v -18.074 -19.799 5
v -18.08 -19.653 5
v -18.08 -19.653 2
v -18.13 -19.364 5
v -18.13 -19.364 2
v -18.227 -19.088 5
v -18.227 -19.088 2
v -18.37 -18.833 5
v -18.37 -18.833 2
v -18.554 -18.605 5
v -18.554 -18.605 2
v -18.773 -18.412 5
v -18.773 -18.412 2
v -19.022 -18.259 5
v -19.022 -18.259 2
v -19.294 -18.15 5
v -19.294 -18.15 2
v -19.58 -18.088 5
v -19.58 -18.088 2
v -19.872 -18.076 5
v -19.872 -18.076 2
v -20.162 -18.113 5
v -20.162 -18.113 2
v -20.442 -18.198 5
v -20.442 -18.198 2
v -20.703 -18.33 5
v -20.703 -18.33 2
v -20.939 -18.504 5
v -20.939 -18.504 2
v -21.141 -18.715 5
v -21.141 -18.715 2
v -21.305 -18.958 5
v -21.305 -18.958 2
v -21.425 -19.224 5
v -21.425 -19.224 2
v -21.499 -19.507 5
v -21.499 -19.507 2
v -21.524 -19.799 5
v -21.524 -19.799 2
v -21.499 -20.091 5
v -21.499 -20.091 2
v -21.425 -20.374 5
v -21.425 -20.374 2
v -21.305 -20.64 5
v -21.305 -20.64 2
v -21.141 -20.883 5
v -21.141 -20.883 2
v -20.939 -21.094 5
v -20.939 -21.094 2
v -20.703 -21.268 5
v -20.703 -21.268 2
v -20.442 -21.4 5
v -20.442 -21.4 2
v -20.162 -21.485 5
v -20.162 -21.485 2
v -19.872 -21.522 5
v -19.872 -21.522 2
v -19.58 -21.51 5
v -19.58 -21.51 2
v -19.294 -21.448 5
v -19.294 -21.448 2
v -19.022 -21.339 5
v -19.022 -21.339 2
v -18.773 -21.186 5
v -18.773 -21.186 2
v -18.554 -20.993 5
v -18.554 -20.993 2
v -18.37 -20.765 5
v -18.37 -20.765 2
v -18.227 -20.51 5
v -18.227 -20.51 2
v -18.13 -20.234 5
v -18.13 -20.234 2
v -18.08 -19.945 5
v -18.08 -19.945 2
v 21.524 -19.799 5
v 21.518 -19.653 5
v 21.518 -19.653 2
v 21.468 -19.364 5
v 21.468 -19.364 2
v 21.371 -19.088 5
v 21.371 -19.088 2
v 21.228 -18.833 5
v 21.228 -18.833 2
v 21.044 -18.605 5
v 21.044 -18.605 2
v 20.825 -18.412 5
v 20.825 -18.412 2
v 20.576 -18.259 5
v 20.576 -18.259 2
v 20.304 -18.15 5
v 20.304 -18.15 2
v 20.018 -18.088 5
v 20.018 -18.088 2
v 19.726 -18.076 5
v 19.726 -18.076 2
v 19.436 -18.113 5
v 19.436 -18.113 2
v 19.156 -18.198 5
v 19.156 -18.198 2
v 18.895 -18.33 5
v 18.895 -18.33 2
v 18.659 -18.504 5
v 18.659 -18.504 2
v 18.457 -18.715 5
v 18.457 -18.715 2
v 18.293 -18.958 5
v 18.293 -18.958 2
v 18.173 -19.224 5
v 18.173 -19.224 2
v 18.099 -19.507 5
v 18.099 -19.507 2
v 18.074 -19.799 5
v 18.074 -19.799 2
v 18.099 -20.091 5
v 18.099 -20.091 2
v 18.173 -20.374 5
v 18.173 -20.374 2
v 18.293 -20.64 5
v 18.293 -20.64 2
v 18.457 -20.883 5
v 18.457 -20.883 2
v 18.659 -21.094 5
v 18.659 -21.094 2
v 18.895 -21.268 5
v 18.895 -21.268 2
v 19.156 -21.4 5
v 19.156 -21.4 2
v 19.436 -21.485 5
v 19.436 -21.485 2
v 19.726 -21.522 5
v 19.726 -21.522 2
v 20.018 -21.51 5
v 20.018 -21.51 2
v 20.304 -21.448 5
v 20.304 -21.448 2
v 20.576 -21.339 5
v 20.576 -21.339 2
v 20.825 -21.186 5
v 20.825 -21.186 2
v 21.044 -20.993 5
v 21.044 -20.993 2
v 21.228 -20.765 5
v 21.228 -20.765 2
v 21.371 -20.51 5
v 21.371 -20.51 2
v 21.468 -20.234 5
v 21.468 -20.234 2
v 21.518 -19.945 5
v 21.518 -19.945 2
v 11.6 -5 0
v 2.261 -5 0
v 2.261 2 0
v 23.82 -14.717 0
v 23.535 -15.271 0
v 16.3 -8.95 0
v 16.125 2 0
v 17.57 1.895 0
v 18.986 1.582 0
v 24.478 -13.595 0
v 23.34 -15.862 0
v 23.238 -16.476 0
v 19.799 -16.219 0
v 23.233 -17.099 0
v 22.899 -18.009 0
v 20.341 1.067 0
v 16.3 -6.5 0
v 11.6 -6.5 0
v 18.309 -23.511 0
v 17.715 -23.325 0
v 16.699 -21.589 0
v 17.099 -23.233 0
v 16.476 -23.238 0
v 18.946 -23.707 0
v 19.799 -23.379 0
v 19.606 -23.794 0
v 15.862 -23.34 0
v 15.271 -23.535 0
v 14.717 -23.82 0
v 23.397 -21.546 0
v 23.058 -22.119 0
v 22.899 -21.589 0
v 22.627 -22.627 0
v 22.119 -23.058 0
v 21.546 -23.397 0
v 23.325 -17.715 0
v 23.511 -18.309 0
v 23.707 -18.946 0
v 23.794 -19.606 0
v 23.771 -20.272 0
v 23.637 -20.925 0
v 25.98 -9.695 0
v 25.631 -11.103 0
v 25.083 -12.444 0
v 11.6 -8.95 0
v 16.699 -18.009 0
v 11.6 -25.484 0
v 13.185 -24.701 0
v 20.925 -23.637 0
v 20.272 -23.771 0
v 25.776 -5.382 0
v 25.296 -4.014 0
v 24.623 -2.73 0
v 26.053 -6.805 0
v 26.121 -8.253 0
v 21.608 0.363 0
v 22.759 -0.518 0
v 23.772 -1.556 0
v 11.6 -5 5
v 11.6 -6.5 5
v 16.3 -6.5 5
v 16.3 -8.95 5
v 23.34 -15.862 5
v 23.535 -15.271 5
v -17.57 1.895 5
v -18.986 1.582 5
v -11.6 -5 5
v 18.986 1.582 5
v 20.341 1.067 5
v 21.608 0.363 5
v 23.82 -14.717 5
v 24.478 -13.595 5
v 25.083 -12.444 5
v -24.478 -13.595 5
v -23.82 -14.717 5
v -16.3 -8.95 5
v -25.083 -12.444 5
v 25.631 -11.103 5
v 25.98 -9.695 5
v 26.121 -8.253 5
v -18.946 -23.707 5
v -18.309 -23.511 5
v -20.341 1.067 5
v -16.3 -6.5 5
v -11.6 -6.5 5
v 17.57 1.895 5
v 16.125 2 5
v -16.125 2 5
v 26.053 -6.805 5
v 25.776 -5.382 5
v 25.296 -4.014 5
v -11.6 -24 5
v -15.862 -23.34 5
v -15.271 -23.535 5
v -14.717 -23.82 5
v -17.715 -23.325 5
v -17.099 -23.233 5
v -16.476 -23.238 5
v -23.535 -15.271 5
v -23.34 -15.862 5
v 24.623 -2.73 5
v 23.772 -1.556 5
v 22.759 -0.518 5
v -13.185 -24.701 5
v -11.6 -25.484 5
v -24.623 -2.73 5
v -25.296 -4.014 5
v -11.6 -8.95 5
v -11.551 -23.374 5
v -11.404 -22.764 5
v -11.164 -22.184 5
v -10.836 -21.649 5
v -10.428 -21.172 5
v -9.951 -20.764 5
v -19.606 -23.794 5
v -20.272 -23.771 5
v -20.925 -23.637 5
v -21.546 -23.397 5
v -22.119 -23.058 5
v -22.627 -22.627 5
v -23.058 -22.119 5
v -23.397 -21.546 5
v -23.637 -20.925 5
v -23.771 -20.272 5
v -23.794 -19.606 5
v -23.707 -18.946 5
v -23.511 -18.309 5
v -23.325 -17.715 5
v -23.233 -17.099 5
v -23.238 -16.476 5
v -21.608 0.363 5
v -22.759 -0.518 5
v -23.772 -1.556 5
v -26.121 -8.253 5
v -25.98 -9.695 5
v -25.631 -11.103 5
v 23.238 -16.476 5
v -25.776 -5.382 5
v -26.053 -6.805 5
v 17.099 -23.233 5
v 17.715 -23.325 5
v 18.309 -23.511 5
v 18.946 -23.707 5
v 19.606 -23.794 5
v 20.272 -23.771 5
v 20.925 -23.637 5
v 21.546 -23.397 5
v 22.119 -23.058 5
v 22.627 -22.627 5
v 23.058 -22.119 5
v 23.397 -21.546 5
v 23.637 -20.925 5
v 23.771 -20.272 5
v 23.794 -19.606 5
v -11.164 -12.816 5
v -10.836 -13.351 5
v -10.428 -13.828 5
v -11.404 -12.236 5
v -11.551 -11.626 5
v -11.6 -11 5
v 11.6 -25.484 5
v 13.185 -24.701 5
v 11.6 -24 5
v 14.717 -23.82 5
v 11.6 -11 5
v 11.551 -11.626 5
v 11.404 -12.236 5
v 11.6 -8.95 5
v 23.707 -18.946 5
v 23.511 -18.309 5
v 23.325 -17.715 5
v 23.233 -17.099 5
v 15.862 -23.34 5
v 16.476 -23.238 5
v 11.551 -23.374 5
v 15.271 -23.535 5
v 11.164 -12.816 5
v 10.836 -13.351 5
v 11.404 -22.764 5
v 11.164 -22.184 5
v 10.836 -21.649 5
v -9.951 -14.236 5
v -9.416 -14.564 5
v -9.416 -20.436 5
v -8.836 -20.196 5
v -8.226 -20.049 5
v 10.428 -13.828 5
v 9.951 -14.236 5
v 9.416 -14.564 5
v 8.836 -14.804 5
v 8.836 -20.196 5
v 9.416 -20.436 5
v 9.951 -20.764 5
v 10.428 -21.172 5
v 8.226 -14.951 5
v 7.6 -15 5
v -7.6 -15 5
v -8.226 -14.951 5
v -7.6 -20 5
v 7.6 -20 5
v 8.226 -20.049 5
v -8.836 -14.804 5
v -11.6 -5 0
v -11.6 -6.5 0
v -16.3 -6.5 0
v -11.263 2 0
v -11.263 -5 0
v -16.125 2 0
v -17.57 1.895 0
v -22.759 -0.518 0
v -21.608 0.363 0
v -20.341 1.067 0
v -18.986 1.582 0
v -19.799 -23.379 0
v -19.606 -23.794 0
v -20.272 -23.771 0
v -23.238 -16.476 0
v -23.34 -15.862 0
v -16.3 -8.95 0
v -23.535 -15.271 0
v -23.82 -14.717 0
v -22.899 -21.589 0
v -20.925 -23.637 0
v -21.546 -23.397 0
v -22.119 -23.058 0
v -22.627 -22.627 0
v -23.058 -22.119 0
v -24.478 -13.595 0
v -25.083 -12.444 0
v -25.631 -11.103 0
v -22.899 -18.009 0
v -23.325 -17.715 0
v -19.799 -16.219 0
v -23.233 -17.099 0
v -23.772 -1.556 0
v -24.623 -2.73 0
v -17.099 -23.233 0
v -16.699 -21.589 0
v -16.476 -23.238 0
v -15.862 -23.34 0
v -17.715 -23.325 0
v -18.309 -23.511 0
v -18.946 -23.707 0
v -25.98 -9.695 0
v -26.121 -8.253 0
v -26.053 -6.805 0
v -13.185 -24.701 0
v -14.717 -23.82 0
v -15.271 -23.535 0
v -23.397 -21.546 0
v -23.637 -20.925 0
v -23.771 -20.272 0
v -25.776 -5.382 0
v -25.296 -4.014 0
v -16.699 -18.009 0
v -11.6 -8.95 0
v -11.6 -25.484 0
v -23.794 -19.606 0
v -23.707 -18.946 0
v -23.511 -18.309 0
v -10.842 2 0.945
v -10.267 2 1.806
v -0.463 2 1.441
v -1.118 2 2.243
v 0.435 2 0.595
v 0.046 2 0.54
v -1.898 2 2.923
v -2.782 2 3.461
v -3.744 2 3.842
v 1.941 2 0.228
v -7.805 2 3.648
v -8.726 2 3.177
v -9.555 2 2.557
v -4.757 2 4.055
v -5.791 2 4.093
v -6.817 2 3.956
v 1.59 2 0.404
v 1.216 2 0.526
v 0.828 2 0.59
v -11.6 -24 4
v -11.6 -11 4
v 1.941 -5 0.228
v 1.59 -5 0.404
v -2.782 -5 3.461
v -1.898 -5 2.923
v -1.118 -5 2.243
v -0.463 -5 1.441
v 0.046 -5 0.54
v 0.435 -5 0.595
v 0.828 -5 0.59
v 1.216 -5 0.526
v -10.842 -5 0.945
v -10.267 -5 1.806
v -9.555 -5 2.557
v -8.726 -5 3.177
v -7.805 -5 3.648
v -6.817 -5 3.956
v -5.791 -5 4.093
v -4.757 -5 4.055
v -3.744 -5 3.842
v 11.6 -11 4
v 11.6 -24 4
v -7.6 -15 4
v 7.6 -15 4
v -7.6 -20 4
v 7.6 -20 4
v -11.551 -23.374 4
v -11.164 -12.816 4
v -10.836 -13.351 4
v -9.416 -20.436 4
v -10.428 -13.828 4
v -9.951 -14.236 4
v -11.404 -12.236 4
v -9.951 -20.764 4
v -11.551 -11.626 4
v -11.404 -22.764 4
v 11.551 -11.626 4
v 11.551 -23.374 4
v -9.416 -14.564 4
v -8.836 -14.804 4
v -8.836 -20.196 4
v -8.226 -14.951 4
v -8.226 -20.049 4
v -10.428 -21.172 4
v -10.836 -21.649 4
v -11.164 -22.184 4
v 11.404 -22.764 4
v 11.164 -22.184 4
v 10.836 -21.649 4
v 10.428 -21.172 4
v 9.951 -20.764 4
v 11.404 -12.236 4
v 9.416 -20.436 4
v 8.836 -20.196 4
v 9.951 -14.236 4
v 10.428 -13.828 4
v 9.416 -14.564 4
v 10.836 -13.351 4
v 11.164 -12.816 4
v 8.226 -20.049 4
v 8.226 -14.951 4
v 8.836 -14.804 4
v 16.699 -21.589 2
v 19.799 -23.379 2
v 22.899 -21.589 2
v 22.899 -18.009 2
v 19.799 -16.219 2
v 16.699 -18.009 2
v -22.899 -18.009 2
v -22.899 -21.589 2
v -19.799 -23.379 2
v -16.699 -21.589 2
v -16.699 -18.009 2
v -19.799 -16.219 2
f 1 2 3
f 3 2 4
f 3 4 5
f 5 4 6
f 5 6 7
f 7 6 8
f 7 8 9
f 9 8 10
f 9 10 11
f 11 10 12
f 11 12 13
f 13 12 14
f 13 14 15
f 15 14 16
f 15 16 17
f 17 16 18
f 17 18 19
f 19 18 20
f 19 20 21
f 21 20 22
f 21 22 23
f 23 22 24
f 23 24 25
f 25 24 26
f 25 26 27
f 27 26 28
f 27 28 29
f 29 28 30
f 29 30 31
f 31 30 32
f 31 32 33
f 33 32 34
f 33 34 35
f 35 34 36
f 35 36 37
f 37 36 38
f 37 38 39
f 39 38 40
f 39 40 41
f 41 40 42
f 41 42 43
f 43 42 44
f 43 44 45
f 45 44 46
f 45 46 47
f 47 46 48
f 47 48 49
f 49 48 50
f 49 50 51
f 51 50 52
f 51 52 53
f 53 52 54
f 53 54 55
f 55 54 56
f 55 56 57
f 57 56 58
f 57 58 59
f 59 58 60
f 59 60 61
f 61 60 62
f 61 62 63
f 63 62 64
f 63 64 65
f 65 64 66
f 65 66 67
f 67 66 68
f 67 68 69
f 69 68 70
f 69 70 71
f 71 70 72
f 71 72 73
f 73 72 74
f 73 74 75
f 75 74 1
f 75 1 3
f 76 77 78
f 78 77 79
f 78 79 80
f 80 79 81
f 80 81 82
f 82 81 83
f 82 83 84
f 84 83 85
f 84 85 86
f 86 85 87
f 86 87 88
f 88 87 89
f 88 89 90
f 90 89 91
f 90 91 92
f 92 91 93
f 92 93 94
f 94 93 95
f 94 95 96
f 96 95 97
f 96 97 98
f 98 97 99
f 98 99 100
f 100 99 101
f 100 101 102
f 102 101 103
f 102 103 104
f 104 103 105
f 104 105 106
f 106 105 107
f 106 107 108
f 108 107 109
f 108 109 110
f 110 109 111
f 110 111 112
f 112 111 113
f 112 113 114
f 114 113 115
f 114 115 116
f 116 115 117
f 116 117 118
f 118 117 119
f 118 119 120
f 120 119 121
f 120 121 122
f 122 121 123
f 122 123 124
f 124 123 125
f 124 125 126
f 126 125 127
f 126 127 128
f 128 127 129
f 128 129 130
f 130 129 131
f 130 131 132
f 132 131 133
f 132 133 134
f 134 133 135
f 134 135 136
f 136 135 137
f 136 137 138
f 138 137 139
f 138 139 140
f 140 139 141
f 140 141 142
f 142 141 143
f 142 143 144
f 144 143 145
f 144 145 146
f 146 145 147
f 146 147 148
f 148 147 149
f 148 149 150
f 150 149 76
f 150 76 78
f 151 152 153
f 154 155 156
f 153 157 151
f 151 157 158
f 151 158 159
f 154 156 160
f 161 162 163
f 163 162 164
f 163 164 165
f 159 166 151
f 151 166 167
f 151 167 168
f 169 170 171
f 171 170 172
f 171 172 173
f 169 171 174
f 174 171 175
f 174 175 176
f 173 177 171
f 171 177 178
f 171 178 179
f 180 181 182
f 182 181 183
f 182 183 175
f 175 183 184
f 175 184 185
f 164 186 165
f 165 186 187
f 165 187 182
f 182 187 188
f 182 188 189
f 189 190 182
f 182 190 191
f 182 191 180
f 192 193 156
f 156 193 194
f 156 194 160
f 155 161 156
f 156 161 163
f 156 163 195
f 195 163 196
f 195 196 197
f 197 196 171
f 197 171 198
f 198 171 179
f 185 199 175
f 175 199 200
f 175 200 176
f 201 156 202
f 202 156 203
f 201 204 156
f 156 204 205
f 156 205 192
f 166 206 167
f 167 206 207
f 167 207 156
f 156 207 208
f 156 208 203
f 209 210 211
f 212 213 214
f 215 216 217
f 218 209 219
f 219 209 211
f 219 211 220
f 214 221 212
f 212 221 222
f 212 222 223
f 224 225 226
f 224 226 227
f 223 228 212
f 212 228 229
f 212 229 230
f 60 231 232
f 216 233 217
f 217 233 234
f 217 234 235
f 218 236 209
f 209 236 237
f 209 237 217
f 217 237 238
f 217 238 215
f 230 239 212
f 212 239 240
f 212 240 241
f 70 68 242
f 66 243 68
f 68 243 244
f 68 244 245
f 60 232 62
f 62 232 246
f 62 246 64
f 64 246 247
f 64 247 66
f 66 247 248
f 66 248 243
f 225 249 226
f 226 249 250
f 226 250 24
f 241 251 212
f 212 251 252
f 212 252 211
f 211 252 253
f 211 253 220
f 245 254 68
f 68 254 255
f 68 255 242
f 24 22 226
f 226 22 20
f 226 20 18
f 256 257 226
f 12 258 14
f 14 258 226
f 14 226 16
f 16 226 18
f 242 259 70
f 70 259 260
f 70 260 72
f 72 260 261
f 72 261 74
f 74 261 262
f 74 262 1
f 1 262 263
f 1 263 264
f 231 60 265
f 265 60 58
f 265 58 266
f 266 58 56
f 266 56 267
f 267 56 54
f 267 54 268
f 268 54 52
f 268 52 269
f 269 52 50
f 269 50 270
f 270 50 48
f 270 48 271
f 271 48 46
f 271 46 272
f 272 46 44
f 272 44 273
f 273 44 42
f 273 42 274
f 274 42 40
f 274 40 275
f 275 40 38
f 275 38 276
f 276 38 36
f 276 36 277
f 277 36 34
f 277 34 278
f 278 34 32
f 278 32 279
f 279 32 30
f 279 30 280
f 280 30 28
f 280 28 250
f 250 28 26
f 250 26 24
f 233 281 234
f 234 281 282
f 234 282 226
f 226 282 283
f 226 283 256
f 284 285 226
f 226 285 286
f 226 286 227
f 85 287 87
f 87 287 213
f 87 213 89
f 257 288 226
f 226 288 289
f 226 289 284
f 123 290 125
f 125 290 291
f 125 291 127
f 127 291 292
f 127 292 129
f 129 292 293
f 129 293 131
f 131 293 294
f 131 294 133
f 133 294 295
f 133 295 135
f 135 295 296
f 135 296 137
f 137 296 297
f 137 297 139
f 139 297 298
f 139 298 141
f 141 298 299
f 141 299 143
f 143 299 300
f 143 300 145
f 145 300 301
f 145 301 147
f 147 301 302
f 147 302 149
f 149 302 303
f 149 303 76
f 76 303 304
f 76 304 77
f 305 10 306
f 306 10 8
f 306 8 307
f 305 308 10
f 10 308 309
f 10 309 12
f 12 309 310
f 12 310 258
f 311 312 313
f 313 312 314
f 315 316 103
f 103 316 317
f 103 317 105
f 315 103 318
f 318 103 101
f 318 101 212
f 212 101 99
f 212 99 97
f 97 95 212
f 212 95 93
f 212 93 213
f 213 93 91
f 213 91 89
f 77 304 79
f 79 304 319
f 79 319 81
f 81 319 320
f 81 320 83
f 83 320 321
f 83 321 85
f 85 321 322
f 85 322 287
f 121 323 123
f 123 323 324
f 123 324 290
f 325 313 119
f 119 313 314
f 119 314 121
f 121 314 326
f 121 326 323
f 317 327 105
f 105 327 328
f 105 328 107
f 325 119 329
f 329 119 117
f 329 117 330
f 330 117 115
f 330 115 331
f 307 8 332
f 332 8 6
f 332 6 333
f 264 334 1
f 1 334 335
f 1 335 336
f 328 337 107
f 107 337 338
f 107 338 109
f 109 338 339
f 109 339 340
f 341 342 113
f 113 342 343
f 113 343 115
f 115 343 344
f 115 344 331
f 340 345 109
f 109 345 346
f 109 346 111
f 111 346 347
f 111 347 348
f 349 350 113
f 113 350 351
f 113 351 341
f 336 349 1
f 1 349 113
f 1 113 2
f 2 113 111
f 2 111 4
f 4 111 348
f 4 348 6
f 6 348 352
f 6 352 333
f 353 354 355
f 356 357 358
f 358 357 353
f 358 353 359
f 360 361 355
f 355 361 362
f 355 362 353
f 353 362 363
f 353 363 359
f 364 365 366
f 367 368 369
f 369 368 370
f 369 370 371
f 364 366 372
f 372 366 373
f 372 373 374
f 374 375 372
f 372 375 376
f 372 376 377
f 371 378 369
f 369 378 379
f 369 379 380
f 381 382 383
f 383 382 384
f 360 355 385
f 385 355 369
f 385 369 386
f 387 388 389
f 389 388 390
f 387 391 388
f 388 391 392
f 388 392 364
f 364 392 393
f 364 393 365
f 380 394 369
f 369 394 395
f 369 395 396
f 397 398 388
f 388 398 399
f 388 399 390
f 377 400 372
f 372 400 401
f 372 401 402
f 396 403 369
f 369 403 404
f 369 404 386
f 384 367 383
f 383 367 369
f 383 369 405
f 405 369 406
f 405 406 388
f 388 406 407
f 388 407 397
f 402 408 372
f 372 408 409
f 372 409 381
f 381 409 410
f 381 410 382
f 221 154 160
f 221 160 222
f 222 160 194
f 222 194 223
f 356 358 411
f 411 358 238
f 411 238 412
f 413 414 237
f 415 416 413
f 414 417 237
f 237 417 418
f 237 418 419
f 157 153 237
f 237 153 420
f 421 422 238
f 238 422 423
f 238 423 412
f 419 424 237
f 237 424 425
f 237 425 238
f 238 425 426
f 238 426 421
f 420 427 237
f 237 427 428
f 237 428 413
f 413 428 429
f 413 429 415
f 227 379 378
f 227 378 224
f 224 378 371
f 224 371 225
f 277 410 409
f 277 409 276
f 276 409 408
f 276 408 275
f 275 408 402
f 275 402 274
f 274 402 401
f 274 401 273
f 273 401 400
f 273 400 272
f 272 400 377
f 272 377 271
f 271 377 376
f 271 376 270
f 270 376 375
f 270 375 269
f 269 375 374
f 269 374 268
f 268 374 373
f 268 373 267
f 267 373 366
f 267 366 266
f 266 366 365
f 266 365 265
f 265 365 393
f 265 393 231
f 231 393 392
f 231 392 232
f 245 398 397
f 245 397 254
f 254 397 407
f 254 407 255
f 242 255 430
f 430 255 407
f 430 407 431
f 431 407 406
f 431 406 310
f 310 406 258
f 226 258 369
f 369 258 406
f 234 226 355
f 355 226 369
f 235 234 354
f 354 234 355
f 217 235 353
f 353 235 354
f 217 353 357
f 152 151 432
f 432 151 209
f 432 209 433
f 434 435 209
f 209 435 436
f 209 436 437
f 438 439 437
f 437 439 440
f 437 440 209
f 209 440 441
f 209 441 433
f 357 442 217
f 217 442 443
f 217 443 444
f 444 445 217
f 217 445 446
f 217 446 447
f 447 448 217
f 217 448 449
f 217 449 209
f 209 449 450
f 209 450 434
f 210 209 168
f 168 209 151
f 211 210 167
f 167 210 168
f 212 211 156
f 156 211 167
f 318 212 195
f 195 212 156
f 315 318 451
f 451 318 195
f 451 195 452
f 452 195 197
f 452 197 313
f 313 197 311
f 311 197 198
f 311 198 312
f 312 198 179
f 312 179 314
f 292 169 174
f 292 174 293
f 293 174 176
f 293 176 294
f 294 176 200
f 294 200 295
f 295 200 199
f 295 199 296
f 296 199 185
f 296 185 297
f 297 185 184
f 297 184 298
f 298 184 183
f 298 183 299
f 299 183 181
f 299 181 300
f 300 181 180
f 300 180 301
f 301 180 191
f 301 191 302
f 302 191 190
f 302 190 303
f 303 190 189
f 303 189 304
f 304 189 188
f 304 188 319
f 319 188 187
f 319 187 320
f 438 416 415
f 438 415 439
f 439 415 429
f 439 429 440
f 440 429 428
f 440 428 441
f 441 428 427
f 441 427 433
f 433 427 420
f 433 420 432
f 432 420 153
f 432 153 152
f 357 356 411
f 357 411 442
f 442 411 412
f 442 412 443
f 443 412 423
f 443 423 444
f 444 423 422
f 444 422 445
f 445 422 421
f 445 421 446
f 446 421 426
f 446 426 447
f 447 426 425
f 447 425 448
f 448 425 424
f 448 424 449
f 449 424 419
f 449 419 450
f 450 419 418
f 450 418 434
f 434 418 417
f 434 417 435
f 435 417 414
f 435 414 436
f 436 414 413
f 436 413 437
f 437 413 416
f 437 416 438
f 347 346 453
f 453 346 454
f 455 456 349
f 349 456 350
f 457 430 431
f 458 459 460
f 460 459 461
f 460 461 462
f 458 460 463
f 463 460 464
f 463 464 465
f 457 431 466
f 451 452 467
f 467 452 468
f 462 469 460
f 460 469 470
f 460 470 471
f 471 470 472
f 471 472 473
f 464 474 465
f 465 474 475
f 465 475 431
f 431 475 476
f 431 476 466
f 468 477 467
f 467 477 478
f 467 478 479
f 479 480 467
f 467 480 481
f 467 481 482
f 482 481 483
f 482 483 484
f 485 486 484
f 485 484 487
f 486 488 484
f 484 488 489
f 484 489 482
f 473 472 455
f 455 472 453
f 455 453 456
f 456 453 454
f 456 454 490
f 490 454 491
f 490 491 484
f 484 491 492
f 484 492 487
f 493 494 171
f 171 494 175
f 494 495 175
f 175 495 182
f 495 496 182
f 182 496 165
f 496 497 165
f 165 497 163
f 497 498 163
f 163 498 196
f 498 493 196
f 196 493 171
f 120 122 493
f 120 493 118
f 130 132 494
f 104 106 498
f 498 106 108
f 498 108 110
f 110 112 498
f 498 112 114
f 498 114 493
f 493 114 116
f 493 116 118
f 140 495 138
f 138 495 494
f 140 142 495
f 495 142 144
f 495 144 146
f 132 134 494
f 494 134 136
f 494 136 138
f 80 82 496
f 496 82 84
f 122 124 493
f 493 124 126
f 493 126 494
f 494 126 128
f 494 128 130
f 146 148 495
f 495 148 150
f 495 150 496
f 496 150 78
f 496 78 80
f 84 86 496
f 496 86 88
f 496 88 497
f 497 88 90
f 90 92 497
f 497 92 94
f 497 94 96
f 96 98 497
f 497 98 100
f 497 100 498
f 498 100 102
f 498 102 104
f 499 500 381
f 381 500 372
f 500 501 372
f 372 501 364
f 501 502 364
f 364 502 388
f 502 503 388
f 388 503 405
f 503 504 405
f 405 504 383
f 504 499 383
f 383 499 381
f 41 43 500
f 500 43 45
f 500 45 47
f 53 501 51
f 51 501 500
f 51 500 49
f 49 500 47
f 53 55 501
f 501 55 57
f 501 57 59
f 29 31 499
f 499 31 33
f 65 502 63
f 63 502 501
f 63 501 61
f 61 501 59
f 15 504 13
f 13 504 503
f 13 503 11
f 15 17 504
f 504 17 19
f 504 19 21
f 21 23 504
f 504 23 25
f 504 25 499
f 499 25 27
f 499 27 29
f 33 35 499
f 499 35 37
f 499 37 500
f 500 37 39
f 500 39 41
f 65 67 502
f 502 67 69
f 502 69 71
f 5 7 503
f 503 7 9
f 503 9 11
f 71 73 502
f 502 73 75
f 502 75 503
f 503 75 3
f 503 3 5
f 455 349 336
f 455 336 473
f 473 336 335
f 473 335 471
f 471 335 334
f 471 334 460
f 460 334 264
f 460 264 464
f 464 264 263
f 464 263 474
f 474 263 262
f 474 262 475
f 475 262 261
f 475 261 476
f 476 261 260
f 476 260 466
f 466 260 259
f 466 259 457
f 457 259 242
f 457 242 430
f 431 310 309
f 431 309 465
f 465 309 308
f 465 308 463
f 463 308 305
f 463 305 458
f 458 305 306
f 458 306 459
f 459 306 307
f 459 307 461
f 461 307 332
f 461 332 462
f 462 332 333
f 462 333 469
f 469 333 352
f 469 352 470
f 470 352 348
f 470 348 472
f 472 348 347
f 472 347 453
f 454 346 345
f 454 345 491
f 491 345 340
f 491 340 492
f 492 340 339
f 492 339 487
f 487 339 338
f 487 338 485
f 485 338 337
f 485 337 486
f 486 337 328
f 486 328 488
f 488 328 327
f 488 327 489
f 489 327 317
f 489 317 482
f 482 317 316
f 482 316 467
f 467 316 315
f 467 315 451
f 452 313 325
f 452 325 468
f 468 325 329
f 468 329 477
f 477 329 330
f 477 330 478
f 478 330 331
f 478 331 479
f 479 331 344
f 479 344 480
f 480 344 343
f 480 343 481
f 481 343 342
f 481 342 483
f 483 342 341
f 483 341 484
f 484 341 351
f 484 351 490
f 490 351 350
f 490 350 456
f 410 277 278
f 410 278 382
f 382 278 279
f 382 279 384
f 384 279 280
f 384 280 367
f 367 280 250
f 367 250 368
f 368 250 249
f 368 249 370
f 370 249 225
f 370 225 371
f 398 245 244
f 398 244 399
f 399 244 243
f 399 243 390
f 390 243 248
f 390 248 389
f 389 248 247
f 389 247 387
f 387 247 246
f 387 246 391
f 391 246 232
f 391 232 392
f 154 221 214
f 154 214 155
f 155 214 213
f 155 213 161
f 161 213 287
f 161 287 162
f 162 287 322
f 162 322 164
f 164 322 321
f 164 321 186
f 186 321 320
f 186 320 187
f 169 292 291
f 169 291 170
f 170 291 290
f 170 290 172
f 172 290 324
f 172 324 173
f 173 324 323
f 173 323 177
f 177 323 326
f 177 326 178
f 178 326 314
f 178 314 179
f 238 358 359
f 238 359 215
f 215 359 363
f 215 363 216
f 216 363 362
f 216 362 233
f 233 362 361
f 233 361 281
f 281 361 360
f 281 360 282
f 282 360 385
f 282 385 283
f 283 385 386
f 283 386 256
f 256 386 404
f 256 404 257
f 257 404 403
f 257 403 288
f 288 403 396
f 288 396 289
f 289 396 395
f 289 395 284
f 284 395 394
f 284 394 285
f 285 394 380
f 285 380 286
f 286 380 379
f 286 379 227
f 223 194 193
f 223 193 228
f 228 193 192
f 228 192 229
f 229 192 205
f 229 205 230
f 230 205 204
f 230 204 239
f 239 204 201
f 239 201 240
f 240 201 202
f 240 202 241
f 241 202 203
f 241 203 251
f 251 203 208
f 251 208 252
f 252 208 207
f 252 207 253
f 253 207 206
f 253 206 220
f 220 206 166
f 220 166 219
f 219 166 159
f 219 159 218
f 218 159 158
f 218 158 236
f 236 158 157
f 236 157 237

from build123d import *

# Parameters (mm, degrees)
SKETCH1_R           = 1.725
BOSS_EXTRUDE1_DEPTH = 5
CUT_EXTRUDE3_REACH  = 41.552
SKETCH6_W           = 23.2
SKETCH6_H           = 5
BOSS_EXTRUDE2_DEPTH = 1
CUT_EXTRUDE4_DEPTH  = 2
FILLET1_R           = 4
FILLET2_R           = 10


with BuildPart() as part:
    # Sketch1 → Boss-Extrude1 (new body)
    with BuildSketch(Plane.XY):
        with BuildLine():
            Line((-27.928480088, 2), (27.928480088, 2))
            ThreePointArc((27.928480088, 2), (26.866863434, -7.884900077), (22.418161887, -16.775756842))
            ThreePointArc((22.418161887, -16.775756842), (22.627416998, -22.627416998), (16.775756842, -22.418161887))
            ThreePointArc((16.775756842, -22.418161887), (14.270455763, -24.090539478), (11.6, -25.484112698))
            Line((11.6, -25.484112698), (11.6, -8.95))
            Line((11.6, -8.95), (16.3, -8.95))
            Line((16.3, -8.95), (16.3, -6.5))
            Line((16.3, -6.5), (11.6, -6.5))
            Line((11.6, -6.5), (11.6, -5))
            Line((11.6, -5), (-11.6, -5))
            Line((-11.6, -5), (-11.6, -6.5))
            Line((-11.6, -6.5), (-16.3, -6.5))
            Line((-16.3, -6.5), (-16.3, -8.95))
            Line((-16.3, -8.95), (-11.6, -8.95))
            Line((-11.6, -8.95), (-11.6, -25.484112698))
            ThreePointArc((-11.6, -25.484112698), (-14.270455763, -24.090539478), (-16.775756842, -22.418161887))
            ThreePointArc((-16.775756842, -22.418161887), (-22.627416998, -22.627416998), (-22.418161887, -16.775756842))
            ThreePointArc((-22.418161887, -16.775756842), (-26.866863434, -7.884900077), (-27.928480088, 2))
        make_face()
        with Locations((-19.798989873, -19.798989873)):
            Circle(SKETCH1_R, mode=Mode.SUBTRACT)
        with Locations((19.798989873, -19.798989873)):
            Circle(SKETCH1_R, mode=Mode.SUBTRACT)
    extrude(amount=BOSS_EXTRUDE1_DEPTH)

    # Sketch5 → Cut-Extrude3 (cut, up to next)
    with BuildSketch(Plane(origin=(0, 2, 0), x_dir=(1, 0, 0), z_dir=(0, 1, 0)), mode=Mode.PRIVATE) as cut_extrude3_sk1:
        with BuildLine():
            ThreePointArc((0.045901639, 4.540270656), (-11.6, 2), (0.045901639, -0.540270656))
            ThreePointArc((0.045901639, -0.540270656), (3.2, 2), (0.045901639, 4.540270656))
        make_face()
    cut_extrude3_tool1 = extrude(cut_extrude3_sk1.sketch, amount=-CUT_EXTRUDE3_REACH, mode=Mode.PRIVATE) & part.part
    add(cut_extrude3_tool1.solids().sort_by_distance((-4.860102, 2, -2))[0], mode=Mode.SUBTRACT)

    # Sketch6 → Boss-Extrude2 (add)
    with BuildSketch(Plane.XY.offset(5)):
        with Locations((0, -17.5)):
            Rectangle(SKETCH6_W, SKETCH6_H)
    extrude(amount=-BOSS_EXTRUDE2_DEPTH)

    # Sketch7 → Cut-Extrude4 (cut)
    with BuildSketch(Plane(origin=(0, 0, 0), x_dir=(-1, 0, 0), z_dir=(0, 0, -1))):
        Polygon((-16.698989873, -21.588775708), (-16.698989873, -18.009204039), (-19.798989873, -16.219418204), (-22.898989873, -18.009204039), (-22.898989873, -21.588775708), (-19.798989873, -23.378561542), align=None)
        Polygon((22.898989873, -18.009204039), (19.798989873, -16.219418204), (16.698989873, -18.009204039), (16.698989873, -21.588775708), (19.798989873, -23.378561542), (22.898989873, -21.588775708), align=None)
    extrude(amount=-CUT_EXTRUDE4_DEPTH, mode=Mode.SUBTRACT)

    # Fillet1
    fillet1_edges = [part.edges().sort_by_distance(p)[0] for p in [
        (22.418161887, -16.775756842, 2.5),
        (16.775756842, -22.418161887, 2.5),
        (-16.775756842, -22.418161887, 2.5),
        (-22.418161887, -16.775756842, 2.5),
        (-11.6, -20, 4.5),
        (-11.6, -15, 4.5),
        (11.6, -15, 4.5),
        (11.6, -20, 4.5),
    ]]
    fillet(fillet1_edges, radius=FILLET1_R)

    # Fillet2
    fillet2_edges = [part.edges().sort_by_distance(p)[0] for p in [
        (-27.928480088, 2, 2.5),
        (27.928480088, 2, 2.5),
    ]]
    fillet(fillet2_edges, radius=FILLET2_R)


solid = part.part
